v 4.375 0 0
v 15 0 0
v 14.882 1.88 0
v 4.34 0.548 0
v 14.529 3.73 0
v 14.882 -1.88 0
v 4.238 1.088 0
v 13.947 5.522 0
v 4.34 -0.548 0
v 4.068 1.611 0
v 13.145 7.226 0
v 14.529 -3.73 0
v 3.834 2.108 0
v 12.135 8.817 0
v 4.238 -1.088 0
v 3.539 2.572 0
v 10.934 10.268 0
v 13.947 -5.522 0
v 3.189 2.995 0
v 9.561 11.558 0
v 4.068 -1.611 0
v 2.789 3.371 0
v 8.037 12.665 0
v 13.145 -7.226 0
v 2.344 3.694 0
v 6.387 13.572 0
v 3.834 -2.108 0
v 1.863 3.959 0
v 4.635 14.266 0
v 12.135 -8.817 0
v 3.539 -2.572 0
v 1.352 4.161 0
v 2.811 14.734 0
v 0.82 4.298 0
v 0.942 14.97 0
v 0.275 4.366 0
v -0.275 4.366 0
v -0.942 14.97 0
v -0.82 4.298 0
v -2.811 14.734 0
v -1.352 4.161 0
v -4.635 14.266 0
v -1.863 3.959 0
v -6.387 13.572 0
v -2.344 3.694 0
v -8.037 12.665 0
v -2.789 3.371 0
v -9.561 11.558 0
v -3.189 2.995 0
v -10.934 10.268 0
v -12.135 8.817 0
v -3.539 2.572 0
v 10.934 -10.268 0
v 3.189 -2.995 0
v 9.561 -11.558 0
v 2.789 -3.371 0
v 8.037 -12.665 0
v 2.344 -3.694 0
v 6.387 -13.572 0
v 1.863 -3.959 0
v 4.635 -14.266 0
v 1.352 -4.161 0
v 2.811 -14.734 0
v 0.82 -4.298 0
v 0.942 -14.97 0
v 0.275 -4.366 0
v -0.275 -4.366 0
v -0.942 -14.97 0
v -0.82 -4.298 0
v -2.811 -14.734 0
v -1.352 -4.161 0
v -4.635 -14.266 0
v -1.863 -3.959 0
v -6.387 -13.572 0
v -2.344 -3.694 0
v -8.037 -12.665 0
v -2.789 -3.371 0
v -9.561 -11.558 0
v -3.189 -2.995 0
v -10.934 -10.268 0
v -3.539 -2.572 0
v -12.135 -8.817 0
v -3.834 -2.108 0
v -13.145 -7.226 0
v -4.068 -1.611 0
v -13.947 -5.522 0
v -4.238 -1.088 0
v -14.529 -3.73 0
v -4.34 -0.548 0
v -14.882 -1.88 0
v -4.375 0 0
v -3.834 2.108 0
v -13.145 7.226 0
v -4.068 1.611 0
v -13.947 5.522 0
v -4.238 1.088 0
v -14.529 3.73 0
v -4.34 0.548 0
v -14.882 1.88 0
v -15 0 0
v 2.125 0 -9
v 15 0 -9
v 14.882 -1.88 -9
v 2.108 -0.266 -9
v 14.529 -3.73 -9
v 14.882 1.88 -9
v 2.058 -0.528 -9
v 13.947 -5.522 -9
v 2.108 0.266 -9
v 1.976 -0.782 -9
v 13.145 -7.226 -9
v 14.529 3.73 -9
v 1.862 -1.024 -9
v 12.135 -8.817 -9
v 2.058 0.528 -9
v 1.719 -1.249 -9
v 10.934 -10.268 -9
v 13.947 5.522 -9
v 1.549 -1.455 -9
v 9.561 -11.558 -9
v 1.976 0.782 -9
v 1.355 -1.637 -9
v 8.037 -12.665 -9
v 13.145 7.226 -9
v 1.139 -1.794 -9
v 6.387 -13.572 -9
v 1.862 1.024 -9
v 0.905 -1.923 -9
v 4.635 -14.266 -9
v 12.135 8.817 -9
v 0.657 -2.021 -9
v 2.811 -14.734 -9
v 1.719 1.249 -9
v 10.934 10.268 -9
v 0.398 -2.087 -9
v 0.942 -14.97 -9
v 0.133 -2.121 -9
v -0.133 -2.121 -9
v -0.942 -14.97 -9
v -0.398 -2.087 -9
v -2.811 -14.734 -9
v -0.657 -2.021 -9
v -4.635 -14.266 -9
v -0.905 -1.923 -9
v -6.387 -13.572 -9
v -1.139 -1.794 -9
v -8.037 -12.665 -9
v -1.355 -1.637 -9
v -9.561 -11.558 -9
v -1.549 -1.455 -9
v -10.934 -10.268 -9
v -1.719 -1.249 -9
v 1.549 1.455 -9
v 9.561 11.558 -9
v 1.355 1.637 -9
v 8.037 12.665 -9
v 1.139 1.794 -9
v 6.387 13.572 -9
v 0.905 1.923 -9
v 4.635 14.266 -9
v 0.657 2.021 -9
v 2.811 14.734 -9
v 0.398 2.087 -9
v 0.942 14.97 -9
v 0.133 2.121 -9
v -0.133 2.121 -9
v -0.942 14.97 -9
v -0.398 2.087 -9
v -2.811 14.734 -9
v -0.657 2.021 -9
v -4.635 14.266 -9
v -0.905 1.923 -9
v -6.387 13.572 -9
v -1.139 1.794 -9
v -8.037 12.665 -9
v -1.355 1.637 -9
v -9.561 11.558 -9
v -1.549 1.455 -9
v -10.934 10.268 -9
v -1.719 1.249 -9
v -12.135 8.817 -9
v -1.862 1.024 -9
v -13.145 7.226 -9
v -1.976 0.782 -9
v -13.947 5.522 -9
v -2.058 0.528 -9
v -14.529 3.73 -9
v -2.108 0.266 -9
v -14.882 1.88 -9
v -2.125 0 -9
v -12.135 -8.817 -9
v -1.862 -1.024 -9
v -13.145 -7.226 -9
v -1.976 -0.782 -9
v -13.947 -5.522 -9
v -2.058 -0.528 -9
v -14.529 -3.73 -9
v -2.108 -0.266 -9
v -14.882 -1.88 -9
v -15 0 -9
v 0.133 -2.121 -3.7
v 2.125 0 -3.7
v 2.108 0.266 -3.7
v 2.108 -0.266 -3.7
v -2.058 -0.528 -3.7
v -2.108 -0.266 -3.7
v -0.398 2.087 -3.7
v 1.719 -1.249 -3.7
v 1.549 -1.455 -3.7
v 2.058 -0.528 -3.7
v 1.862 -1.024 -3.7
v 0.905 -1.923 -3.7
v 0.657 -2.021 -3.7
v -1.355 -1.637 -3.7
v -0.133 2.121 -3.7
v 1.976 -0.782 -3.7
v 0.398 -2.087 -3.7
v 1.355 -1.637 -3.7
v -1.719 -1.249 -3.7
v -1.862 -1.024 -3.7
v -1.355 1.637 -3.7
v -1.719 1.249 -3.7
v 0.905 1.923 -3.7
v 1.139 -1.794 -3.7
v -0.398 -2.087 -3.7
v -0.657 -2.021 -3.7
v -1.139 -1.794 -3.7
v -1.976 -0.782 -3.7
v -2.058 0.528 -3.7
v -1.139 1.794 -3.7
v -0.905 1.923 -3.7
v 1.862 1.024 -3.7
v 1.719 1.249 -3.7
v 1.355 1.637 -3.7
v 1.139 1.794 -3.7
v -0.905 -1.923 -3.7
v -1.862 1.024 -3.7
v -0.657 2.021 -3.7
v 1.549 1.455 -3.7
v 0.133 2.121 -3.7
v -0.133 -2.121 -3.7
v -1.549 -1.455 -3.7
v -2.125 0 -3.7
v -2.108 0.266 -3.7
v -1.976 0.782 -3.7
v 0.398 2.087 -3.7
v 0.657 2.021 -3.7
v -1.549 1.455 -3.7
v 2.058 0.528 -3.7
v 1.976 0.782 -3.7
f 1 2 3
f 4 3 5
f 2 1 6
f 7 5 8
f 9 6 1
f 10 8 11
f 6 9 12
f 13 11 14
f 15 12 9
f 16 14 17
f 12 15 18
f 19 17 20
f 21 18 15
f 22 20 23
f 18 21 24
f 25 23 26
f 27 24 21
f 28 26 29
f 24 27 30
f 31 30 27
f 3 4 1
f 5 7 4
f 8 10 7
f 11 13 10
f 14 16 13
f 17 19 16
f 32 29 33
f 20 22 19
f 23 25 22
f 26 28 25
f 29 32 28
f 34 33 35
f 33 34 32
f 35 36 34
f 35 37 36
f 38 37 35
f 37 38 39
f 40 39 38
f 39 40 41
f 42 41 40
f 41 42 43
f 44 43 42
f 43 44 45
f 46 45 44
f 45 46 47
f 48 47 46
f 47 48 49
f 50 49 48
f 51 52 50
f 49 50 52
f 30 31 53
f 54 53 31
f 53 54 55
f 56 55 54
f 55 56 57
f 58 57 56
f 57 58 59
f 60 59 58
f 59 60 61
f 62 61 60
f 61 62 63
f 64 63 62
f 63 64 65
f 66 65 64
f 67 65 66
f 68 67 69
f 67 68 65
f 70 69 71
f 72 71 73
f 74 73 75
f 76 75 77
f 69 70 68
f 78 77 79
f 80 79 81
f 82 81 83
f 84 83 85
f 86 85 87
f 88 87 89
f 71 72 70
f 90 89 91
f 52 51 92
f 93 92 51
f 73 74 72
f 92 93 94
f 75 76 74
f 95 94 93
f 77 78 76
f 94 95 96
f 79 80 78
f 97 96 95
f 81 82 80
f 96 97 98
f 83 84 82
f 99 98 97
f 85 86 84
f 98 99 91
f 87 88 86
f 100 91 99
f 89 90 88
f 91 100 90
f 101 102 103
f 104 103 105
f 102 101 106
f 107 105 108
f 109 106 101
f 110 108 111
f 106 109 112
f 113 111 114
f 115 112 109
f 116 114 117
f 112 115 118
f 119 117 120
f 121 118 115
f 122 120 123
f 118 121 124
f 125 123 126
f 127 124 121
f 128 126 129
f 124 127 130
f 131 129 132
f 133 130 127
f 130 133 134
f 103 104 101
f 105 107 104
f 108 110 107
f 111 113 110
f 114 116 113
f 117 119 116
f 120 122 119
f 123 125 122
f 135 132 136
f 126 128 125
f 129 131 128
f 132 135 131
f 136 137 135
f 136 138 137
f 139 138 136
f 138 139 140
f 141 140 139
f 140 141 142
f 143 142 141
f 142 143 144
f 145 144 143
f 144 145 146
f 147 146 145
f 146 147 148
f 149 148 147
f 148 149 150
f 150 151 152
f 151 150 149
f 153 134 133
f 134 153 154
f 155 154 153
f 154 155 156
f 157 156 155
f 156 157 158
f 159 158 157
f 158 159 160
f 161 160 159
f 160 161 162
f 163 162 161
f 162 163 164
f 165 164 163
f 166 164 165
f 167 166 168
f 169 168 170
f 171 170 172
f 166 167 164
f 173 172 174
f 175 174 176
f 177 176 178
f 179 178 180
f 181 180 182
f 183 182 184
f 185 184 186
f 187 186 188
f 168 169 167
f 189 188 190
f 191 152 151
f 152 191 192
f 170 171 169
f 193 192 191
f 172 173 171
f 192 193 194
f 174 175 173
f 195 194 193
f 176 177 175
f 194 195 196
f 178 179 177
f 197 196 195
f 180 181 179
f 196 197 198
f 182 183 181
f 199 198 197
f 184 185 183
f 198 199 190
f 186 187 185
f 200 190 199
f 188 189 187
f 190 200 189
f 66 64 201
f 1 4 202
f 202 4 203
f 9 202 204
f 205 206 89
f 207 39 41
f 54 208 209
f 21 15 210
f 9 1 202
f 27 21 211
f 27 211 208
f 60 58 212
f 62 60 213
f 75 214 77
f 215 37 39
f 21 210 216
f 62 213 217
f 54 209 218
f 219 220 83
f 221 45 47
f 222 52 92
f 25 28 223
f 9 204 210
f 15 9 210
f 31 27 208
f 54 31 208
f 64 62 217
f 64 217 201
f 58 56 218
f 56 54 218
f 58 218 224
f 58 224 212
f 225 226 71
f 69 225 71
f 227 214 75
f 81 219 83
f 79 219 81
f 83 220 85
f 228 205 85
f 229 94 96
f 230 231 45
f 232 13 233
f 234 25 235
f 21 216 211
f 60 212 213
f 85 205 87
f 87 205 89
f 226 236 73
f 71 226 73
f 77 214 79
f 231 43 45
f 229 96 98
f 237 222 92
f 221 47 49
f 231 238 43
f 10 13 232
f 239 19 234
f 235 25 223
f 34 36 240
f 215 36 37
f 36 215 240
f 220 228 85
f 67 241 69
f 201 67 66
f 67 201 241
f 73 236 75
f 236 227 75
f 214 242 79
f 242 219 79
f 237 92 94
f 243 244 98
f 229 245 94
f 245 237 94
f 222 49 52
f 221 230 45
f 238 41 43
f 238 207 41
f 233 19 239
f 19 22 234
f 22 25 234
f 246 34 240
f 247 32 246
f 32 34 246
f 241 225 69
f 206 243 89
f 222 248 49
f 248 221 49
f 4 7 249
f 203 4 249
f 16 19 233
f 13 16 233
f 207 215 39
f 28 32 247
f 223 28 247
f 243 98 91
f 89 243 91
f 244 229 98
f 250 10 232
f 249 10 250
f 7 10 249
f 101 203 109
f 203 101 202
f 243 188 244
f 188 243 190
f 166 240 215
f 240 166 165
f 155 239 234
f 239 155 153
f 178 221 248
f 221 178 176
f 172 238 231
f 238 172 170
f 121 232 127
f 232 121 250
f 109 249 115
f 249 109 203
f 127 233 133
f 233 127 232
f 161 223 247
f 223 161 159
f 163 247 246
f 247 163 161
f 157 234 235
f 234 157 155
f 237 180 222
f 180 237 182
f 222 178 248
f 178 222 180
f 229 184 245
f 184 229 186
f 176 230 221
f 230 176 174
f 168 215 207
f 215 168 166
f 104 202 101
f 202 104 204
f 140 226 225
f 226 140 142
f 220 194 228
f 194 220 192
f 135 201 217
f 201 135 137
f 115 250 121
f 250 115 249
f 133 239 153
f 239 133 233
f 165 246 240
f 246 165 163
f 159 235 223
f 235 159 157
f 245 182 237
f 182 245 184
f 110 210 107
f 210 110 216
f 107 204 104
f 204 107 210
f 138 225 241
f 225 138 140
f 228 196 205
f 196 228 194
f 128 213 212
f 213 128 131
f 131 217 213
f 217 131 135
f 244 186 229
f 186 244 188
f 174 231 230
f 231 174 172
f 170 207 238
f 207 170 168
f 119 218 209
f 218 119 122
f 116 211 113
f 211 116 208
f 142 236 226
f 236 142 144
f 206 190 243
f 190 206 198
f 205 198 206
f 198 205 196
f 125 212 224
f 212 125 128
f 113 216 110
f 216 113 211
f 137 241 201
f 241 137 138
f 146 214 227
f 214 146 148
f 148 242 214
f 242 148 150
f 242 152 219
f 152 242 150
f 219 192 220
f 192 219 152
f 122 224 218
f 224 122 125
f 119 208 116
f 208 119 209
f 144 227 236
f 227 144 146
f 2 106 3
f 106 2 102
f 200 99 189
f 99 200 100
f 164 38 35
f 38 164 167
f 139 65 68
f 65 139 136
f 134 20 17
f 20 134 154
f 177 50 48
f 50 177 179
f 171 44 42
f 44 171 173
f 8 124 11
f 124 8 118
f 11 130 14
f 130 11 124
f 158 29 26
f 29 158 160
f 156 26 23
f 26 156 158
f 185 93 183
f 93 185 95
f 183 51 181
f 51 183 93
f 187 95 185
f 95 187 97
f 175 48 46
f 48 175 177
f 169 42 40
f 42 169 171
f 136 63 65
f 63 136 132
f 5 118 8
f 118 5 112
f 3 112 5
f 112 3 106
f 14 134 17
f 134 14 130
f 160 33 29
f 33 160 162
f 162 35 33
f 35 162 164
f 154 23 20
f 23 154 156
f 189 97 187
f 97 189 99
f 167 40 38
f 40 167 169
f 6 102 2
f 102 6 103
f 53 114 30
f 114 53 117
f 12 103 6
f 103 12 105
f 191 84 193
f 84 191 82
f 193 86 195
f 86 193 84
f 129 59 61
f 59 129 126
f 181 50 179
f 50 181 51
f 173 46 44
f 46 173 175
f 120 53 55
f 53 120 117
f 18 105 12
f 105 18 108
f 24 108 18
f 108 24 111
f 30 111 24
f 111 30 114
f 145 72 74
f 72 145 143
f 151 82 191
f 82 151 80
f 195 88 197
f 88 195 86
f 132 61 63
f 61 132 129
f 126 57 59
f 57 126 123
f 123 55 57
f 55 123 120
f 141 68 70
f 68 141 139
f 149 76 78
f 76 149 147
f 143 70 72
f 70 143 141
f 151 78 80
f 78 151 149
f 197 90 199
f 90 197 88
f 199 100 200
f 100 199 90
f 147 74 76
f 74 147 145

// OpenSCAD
$fn = 50;


difference() {
	union() {
		translate(v = [0, 0, -9.0000000000]) {
			cylinder(h = 9, r = 15.0000000000);
		}
	}
	union() {
		translate(v = [0, 0, 0]) {
			rotate(a = [0, 0, 0]) {
				difference() {
					union() {
						translate(v = [0, 0, -9.0000000000]) {
							cylinder(h = 9, r = 2.0000000000);
						}
						translate(v = [0, 0, -3.7000000000]) {
							cylinder(h = 3.7000000000, r1 = 2.1250000000, r2 = 4.3750000000);
						}
						translate(v = [0, 0, -9.0000000000]) {
							cylinder(h = 9, r = 2.1250000000);
						}
						translate(v = [0, 0, -9.0000000000]) {
							cylinder(h = 9, r = 2.0000000000);
						}
					}
					union();
				}
			}
		}
	}
}
